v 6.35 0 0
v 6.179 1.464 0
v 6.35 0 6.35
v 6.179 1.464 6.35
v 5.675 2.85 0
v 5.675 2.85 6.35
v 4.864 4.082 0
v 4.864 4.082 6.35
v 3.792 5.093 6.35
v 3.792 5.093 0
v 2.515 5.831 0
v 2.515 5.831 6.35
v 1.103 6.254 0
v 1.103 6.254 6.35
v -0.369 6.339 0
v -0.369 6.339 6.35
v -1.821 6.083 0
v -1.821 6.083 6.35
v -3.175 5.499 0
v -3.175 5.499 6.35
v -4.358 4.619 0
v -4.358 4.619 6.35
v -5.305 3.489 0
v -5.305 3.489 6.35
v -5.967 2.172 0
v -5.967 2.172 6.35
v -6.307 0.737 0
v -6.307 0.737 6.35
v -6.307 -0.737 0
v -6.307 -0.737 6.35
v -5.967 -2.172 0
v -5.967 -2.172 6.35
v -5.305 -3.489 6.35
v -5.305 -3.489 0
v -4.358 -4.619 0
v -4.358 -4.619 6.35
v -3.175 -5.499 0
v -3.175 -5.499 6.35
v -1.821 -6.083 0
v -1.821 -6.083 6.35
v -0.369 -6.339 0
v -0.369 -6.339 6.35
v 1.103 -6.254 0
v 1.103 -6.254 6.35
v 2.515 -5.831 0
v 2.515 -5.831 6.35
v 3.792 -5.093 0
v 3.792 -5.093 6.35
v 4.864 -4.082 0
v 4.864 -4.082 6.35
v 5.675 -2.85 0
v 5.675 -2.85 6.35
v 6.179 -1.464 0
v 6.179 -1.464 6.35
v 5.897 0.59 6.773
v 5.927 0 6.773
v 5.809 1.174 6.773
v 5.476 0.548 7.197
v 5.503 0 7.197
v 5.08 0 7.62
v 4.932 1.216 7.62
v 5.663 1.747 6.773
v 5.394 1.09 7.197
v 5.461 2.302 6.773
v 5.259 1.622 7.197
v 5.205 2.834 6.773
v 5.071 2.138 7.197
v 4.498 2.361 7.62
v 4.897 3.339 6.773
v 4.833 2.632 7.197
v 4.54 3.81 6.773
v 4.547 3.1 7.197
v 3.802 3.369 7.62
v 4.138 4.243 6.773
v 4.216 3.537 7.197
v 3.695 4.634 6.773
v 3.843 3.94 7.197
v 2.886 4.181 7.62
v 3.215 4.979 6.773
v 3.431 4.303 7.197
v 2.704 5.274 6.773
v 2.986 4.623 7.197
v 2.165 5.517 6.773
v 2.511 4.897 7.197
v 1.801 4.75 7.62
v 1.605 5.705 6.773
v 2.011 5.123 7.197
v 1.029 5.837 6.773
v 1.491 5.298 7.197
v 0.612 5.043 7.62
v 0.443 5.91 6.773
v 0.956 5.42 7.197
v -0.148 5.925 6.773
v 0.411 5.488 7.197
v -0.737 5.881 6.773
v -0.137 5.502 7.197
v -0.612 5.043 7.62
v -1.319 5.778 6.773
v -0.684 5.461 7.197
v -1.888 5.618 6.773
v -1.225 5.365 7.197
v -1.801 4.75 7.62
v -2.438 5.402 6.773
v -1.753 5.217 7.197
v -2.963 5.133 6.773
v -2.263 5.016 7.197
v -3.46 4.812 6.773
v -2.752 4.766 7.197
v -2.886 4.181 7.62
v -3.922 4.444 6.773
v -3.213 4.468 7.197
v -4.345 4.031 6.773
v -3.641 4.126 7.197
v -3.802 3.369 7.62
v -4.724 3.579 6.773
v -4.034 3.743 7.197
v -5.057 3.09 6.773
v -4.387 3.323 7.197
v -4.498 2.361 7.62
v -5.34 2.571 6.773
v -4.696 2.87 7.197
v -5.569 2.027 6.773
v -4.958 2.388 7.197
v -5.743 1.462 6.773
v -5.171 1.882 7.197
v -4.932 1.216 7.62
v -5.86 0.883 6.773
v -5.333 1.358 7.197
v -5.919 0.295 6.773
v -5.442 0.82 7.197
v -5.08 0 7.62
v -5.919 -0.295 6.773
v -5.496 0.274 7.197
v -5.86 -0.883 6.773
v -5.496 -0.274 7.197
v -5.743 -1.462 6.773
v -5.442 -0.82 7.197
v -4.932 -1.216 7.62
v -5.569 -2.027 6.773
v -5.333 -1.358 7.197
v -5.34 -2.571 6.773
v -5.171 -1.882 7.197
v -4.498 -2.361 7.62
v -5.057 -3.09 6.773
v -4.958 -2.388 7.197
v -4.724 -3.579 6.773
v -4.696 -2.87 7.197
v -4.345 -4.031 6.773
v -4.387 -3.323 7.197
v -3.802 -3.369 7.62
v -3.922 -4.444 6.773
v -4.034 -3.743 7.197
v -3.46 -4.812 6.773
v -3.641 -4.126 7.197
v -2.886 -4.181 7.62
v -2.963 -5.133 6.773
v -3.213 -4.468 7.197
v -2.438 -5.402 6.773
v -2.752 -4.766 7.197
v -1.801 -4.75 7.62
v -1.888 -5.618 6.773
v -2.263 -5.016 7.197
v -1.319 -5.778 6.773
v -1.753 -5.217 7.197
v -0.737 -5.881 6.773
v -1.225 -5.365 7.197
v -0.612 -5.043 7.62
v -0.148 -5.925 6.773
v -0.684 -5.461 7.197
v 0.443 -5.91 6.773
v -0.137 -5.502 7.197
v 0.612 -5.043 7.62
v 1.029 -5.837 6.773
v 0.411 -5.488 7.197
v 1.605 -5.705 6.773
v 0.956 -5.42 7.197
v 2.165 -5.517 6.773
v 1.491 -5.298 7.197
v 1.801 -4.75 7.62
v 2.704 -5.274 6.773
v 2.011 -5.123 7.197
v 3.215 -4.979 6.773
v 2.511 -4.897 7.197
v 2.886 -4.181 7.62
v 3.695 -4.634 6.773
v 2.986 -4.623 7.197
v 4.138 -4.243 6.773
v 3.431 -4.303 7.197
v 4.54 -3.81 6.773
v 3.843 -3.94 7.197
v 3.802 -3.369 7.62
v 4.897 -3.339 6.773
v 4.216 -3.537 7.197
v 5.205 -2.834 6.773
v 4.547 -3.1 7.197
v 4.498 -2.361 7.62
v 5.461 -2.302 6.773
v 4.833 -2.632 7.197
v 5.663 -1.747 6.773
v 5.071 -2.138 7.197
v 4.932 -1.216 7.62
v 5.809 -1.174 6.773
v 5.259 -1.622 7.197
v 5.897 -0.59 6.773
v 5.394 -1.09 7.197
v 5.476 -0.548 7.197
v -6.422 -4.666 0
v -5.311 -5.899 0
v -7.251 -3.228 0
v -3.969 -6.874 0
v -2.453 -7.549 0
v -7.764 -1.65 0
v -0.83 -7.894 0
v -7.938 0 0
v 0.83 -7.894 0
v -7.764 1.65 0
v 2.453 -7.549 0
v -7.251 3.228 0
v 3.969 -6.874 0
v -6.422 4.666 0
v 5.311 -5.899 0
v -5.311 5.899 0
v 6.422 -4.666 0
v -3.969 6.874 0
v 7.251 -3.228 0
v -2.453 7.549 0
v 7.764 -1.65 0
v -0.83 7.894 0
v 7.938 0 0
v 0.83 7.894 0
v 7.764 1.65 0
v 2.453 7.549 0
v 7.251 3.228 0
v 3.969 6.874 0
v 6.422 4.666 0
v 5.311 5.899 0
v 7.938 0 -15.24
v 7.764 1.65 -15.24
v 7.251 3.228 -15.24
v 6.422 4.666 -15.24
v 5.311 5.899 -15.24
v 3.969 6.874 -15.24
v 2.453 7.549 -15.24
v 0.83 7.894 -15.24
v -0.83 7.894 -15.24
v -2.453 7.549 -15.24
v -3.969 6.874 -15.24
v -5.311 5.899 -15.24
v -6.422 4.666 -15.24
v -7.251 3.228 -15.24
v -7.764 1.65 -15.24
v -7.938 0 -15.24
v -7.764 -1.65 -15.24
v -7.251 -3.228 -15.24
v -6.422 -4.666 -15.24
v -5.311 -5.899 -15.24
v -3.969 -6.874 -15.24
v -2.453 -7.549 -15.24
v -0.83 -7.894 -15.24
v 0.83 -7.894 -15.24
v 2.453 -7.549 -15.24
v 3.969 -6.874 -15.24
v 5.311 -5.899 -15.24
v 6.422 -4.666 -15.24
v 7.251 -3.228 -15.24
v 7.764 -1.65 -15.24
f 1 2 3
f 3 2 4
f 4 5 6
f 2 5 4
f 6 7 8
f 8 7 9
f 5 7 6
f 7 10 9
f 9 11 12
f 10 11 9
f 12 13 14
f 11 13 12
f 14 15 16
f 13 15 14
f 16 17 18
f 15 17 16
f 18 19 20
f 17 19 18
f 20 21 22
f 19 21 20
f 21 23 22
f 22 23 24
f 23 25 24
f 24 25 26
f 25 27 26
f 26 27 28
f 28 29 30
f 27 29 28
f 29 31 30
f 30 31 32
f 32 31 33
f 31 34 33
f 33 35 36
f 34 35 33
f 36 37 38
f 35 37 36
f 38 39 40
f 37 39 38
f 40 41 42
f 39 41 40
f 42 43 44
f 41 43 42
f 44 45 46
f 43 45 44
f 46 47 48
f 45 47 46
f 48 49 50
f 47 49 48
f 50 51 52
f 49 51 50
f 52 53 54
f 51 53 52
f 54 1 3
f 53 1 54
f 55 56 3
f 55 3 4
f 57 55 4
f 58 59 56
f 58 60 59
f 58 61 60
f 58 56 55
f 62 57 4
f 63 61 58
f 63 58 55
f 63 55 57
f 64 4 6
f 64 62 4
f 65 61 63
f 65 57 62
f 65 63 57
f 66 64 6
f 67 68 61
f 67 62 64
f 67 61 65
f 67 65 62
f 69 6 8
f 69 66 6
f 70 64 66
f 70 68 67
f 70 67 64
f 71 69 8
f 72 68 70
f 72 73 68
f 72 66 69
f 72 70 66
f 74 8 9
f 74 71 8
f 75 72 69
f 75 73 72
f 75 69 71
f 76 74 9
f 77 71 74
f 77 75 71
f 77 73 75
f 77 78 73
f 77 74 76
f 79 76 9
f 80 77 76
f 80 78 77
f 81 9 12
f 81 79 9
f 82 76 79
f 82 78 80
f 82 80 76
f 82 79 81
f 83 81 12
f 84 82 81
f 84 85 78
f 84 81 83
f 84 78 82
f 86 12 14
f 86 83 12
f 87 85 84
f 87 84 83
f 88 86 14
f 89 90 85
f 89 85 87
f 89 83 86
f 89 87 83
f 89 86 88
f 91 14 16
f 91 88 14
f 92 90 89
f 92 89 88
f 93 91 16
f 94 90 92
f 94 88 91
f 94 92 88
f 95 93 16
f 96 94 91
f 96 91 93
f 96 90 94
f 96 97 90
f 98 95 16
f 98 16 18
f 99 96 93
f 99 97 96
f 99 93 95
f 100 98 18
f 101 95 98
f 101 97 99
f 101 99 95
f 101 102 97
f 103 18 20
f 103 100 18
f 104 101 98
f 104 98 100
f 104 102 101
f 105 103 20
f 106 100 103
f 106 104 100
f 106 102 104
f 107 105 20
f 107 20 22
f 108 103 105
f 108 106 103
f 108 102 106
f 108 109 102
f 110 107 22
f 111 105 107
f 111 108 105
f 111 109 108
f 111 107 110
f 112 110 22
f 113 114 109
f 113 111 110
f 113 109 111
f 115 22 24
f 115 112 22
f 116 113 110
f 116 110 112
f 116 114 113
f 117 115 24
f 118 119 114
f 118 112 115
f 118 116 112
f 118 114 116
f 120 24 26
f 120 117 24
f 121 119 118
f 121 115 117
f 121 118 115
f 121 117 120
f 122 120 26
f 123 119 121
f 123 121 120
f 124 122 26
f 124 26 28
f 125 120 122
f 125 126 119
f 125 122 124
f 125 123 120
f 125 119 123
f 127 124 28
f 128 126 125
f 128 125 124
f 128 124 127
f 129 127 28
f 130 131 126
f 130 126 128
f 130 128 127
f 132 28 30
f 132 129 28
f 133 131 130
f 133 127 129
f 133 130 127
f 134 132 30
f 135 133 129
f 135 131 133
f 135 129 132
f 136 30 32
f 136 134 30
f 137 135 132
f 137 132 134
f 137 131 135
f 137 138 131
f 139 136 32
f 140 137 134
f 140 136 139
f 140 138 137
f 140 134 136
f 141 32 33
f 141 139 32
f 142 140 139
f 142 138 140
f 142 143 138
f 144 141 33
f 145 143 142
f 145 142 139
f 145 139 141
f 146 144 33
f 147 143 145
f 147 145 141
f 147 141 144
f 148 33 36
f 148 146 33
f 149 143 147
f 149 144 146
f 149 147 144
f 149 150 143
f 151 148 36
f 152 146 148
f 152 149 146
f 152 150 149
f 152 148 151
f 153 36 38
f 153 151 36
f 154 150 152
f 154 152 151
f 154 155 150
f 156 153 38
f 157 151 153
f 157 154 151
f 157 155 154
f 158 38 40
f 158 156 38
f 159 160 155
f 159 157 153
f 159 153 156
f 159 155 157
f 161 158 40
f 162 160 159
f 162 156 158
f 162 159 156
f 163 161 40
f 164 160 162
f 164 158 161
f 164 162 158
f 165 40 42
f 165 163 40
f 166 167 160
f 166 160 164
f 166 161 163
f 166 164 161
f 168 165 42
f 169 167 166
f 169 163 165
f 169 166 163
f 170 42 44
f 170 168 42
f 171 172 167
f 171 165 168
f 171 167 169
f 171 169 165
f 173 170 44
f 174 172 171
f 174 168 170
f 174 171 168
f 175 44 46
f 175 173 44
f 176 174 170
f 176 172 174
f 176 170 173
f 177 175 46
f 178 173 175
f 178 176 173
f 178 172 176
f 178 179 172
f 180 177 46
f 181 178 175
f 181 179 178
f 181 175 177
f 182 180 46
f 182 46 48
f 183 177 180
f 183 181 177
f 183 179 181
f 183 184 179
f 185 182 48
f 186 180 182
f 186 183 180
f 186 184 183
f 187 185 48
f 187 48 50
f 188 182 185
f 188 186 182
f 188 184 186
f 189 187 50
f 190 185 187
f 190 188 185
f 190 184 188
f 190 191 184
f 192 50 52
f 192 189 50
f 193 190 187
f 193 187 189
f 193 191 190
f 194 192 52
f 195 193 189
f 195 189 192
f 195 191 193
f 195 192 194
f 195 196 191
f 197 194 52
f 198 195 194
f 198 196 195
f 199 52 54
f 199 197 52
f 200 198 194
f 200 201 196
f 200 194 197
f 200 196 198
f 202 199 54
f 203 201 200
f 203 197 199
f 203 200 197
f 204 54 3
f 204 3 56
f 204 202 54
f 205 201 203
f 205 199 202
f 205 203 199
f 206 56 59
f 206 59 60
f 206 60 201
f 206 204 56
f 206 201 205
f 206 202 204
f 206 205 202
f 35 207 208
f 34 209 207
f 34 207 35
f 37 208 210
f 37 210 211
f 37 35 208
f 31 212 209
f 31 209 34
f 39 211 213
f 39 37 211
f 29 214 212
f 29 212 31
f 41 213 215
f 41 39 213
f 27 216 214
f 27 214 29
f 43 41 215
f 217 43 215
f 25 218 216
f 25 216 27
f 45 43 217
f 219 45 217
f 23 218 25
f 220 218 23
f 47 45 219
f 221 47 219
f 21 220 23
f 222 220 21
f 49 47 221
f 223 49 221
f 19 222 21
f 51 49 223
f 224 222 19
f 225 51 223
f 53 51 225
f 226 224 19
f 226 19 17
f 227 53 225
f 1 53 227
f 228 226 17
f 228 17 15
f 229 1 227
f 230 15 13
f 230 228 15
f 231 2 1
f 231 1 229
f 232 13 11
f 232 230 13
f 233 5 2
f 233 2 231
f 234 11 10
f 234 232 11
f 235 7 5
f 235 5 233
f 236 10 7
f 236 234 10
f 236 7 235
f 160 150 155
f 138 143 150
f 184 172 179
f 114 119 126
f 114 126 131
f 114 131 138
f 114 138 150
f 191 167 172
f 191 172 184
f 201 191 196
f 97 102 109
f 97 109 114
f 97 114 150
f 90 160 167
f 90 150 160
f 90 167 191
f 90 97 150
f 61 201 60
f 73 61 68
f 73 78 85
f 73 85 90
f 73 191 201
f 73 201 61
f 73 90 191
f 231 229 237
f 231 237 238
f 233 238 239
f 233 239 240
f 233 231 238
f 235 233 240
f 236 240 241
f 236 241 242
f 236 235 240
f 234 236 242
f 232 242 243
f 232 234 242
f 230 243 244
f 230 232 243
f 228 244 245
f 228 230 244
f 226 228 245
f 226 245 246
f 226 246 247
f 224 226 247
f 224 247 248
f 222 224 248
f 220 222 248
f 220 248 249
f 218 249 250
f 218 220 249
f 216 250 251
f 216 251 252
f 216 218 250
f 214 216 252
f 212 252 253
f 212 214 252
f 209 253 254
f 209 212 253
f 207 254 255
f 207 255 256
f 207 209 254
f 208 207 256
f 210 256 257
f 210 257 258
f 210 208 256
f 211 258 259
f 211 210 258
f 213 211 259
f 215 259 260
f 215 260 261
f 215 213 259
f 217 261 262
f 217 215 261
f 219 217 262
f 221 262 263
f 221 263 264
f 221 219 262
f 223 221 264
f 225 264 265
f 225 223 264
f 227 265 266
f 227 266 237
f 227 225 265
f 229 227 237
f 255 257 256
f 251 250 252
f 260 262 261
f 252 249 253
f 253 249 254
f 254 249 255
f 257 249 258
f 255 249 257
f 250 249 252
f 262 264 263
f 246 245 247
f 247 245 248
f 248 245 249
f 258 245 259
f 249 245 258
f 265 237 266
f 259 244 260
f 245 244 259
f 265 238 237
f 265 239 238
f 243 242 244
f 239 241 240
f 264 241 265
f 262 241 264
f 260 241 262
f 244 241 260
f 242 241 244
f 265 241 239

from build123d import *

# Parameters (mm, degrees)
SKETCH001_R  = 6.35
PAD_DEPTH    = 7.62
SKETCH_R     = 7.9375
PAD001_DEPTH = 15.24
CHAMFER_SIZE = 1.27


with BuildPart() as part:
    # Sketch001 → Pad (new body)
    with BuildSketch(Plane.XY):
        Circle(SKETCH001_R)
    extrude(amount=PAD_DEPTH)

    # Sketch → Pad001 (join)
    with BuildSketch(Plane.XY):
        Circle(SKETCH_R)
    extrude(amount=-PAD001_DEPTH)

    # Chamfer
    chamfer_edges = [part.edges().sort_by_distance(p)[0] for p in [
        (-6.35, 0, 7.62),
    ]]
    chamfer(chamfer_edges, length=CHAMFER_SIZE)


solid = part.part
